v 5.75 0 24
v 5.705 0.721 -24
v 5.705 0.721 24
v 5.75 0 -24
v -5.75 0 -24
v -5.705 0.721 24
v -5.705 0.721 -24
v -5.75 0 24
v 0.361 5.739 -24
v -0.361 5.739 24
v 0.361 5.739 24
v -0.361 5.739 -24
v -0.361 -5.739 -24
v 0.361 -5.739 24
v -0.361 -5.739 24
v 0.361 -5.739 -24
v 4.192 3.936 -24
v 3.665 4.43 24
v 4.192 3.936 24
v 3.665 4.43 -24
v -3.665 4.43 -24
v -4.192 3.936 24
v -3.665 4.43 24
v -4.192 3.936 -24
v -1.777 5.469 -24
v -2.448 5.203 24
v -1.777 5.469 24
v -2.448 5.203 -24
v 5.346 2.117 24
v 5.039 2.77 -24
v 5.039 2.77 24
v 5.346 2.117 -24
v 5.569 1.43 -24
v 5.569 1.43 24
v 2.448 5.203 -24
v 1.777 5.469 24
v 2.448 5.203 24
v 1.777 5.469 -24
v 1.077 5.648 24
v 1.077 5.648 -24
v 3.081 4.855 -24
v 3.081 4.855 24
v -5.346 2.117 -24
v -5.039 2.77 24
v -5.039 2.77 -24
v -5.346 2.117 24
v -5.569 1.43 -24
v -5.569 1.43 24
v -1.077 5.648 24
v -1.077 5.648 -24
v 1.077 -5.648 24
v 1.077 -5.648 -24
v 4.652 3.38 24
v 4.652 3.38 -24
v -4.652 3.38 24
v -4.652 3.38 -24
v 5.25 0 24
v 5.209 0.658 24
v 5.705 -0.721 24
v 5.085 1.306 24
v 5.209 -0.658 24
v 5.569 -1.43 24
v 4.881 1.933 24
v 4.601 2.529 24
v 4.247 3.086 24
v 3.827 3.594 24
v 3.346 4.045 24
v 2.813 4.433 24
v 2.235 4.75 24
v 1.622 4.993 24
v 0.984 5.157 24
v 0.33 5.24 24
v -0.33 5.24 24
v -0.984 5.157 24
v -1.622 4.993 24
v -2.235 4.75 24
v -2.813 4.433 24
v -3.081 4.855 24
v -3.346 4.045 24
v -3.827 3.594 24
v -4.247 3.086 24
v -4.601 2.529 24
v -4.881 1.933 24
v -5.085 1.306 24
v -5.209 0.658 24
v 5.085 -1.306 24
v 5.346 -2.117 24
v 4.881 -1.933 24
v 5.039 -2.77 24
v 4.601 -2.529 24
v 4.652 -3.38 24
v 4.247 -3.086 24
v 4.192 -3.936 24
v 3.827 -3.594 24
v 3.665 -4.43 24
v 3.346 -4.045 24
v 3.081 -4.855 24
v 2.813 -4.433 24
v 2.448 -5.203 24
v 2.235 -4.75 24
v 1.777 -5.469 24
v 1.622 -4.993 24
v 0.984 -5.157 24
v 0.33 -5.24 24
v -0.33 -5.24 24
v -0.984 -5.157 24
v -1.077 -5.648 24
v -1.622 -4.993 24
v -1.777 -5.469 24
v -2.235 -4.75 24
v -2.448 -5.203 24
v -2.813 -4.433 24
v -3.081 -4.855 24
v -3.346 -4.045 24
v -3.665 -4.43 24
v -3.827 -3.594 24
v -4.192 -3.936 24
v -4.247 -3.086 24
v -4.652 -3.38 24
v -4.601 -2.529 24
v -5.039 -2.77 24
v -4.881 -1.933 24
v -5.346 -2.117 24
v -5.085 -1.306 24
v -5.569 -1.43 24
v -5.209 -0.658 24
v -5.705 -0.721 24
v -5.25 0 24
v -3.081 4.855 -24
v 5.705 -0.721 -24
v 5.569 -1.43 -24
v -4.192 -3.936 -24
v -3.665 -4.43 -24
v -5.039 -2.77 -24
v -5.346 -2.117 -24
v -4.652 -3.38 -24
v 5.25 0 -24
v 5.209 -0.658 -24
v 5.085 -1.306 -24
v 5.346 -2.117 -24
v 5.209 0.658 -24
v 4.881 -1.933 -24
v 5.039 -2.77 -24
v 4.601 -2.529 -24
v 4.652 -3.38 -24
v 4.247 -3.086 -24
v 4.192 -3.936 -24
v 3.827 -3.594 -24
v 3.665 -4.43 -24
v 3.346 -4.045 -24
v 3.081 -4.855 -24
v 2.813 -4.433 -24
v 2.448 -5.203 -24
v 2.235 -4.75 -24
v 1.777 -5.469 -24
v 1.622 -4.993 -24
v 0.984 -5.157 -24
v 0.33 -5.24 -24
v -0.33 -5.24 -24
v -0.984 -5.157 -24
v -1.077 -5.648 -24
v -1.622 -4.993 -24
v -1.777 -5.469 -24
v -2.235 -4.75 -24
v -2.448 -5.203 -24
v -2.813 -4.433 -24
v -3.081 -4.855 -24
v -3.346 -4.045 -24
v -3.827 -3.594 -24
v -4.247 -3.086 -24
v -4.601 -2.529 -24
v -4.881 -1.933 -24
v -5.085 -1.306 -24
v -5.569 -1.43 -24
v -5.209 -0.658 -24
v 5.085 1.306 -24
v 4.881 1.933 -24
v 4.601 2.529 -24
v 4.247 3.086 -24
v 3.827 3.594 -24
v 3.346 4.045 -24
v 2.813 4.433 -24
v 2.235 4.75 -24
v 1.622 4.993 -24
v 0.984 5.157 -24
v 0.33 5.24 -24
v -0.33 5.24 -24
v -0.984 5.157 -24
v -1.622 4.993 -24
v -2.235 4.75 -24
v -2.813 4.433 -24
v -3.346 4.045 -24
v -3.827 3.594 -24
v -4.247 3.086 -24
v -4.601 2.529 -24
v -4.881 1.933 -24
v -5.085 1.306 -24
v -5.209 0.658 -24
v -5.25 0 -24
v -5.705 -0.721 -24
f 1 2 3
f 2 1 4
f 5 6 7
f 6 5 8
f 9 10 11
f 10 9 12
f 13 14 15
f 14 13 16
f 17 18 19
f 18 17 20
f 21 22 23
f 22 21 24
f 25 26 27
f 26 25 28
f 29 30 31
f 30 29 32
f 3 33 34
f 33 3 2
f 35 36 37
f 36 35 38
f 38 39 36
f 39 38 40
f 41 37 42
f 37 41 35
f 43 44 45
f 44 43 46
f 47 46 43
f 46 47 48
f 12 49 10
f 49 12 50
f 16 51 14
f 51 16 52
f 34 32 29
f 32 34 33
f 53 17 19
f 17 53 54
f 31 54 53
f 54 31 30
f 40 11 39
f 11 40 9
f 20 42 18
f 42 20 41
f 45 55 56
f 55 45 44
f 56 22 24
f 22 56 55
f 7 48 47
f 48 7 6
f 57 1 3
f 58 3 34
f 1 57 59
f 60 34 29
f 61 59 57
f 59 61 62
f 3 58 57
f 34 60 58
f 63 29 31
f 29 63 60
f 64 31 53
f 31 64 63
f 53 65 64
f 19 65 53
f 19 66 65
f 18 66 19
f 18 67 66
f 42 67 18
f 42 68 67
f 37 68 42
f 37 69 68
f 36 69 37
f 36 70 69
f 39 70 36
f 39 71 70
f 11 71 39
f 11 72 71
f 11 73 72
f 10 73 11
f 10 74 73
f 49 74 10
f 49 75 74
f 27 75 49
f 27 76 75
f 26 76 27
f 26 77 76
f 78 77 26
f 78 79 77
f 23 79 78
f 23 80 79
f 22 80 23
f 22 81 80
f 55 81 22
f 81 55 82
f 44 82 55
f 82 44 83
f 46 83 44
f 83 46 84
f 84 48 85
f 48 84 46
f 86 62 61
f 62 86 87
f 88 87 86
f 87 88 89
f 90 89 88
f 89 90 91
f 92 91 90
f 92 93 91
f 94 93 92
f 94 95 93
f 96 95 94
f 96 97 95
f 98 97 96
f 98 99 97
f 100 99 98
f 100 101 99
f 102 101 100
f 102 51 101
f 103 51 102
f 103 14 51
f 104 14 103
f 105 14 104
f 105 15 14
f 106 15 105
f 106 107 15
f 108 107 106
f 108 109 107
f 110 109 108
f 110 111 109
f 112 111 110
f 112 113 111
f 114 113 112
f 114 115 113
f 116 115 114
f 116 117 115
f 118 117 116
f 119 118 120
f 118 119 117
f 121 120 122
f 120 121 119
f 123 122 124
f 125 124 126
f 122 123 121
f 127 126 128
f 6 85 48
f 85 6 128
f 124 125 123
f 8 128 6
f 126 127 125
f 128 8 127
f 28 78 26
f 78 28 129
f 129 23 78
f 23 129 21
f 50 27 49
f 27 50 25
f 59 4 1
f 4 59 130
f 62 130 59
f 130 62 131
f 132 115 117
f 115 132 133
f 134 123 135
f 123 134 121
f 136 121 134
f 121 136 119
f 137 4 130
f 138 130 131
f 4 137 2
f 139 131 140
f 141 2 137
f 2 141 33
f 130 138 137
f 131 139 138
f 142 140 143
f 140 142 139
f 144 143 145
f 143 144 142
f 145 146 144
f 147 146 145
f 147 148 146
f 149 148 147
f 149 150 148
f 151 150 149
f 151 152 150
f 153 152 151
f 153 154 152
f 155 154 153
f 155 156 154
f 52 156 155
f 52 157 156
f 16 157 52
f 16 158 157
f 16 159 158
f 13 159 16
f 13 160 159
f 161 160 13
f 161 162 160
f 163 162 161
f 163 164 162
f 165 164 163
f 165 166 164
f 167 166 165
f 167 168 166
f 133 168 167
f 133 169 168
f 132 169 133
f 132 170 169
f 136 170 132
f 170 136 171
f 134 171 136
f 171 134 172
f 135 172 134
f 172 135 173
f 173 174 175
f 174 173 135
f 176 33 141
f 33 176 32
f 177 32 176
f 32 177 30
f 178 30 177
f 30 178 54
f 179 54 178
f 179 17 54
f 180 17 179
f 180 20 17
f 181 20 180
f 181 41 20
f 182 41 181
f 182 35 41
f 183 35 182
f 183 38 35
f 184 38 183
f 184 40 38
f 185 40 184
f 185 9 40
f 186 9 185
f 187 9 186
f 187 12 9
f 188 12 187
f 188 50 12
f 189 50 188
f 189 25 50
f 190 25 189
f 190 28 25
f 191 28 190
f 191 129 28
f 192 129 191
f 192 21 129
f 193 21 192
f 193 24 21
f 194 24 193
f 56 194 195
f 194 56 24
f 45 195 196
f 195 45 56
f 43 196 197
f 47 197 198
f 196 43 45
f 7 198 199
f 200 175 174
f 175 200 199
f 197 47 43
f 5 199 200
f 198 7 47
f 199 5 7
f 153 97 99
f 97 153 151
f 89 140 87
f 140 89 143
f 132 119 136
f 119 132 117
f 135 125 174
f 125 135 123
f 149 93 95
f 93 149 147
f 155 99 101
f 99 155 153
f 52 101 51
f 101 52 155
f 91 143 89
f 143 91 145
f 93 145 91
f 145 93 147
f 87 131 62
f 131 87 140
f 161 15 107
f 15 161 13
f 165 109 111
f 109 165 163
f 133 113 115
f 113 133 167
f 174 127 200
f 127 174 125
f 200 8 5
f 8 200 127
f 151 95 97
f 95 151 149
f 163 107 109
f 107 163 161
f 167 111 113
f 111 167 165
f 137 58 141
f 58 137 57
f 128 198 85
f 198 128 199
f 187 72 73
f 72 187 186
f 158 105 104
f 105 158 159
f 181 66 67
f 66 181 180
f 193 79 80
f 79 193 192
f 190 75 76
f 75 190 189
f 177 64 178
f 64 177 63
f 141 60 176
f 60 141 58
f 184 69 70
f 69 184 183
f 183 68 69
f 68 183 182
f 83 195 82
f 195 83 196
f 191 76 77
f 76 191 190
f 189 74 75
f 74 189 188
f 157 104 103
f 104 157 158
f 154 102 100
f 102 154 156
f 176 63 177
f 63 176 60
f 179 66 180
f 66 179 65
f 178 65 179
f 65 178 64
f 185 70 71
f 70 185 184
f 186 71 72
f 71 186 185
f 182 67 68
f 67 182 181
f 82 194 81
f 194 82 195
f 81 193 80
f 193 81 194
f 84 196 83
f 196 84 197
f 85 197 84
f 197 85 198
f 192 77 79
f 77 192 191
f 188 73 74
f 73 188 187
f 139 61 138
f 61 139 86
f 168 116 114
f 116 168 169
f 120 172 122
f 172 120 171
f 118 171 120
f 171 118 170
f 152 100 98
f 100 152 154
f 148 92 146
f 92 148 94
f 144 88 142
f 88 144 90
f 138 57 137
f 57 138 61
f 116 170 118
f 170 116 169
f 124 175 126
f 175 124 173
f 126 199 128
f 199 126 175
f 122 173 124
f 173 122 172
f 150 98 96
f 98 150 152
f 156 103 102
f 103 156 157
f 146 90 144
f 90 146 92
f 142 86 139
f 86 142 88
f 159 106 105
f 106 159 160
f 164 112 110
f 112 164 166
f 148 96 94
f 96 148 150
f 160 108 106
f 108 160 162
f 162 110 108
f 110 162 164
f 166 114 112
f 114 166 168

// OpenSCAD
$fn = 50;


difference() {
	union() {
		translate(v = [0, 0, -24.0000000000]) {
			cylinder(h = 48, r = 5.7500000000);
		}
	}
	union() {
		translate(v = [0, 0, -100.0000000000]) {
			cylinder(h = 200, r = 5.2500000000);
		}
	}
}
